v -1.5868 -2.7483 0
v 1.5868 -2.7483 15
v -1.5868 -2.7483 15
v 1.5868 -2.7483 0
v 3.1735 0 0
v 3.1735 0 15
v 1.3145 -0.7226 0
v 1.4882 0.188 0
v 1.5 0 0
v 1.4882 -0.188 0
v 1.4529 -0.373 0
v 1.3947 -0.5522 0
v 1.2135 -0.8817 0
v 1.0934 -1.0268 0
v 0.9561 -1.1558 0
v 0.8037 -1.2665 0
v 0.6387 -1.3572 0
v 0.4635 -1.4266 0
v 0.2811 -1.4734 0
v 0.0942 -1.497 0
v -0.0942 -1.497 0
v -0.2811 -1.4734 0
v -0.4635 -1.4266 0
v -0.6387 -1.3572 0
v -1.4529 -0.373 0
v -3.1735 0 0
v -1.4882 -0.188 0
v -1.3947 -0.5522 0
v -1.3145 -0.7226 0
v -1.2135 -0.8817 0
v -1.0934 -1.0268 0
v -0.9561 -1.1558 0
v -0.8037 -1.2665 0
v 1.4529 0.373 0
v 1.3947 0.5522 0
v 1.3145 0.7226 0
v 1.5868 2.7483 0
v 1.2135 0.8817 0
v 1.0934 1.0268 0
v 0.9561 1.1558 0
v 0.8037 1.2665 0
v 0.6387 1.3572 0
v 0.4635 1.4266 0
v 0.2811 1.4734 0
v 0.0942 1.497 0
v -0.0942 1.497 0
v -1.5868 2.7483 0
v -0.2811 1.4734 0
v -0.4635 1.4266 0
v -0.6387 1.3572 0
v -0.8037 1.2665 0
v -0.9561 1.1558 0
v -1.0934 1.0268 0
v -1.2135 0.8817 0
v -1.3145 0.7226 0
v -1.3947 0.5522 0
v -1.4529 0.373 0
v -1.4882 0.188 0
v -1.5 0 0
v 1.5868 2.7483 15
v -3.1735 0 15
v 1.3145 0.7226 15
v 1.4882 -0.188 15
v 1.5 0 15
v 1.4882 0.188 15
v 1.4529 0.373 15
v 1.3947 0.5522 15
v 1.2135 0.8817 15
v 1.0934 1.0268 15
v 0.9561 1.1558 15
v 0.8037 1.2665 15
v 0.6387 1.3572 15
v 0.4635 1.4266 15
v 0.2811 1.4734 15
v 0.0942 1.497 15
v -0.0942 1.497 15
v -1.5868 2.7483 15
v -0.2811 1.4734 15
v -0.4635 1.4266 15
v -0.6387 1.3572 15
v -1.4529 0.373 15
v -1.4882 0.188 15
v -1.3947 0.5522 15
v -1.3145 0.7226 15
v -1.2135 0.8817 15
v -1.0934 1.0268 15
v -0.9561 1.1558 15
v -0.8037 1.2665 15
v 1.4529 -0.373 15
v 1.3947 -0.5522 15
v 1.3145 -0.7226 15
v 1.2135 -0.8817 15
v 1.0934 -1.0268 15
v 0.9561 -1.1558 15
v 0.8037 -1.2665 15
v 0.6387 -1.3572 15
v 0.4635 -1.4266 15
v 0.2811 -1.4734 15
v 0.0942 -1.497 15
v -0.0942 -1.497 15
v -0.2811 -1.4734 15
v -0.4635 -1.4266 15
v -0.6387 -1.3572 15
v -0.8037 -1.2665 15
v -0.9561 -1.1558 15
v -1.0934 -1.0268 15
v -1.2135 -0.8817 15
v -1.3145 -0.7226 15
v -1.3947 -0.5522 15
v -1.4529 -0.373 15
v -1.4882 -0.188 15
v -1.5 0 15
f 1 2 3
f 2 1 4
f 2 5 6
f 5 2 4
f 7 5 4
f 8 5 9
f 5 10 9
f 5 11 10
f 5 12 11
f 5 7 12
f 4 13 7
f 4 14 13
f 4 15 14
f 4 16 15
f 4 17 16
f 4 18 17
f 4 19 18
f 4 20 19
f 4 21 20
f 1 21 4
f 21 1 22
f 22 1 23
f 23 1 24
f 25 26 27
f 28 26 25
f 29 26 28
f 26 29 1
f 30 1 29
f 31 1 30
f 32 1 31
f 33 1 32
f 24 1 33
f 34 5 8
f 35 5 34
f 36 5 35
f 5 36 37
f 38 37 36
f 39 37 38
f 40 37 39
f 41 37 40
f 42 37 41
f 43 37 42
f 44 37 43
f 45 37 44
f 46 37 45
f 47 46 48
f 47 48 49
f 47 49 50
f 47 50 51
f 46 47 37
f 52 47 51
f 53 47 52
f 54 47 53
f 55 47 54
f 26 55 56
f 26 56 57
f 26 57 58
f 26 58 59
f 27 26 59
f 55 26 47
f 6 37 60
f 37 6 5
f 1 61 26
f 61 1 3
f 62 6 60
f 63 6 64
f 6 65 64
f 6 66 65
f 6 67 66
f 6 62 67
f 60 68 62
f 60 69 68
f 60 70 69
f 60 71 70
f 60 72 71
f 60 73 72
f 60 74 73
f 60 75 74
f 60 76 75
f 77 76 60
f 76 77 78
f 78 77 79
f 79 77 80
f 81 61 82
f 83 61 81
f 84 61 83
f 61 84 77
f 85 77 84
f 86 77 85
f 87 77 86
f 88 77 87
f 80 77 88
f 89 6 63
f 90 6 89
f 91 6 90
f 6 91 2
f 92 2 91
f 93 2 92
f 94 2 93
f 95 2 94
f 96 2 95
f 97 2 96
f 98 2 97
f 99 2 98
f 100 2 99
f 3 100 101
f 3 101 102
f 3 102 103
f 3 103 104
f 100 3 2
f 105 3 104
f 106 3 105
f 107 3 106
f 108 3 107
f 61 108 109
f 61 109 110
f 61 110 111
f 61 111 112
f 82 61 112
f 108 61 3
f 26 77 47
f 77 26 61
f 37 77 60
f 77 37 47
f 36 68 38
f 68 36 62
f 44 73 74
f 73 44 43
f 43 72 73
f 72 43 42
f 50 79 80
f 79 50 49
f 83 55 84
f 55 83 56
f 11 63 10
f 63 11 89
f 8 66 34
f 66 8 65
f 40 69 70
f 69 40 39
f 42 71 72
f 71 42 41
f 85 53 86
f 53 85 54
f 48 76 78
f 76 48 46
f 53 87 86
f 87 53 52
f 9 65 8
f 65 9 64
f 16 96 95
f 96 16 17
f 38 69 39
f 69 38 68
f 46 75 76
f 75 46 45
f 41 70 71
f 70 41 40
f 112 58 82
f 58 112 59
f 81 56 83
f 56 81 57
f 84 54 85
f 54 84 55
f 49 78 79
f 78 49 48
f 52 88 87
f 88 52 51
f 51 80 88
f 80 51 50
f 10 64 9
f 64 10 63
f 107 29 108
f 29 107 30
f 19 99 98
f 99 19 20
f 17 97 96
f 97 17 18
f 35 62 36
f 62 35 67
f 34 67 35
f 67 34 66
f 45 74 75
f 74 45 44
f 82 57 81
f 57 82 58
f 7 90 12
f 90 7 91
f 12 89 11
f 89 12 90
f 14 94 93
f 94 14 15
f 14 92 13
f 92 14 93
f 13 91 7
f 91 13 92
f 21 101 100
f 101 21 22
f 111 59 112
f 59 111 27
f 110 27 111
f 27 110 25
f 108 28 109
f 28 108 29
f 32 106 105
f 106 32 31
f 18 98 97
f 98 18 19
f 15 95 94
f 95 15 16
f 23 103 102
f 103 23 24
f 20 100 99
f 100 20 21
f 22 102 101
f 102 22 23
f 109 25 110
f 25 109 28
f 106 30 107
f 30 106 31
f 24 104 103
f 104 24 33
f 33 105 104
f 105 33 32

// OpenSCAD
$fn = 50;


difference() {
	union() {
		translate(v = [0, 0, 0]) {
			rotate(a = [0, 0, 0]) {
				translate(v = [0, 0, 0]) {
					rotate(a = [0, 0, 0]) {
						linear_extrude(height = 15) {
							polygon(points = [[3.1735000000, 0.0000000000], [1.5867500000, 2.7483316189], [-1.5867500000, 2.7483316189], [-3.1735000000, 0.0000000000], [-1.5867500000, -2.7483316189], [1.5867500000, -2.7483316189]]);
						}
					}
				}
			}
		}
	}
	union() {
		translate(v = [0, 0, -10]) {
			rotate(a = [0, 0, 0]) {
				cylinder(h = 100, r = 1.5000000000);
			}
		}
	}
}
